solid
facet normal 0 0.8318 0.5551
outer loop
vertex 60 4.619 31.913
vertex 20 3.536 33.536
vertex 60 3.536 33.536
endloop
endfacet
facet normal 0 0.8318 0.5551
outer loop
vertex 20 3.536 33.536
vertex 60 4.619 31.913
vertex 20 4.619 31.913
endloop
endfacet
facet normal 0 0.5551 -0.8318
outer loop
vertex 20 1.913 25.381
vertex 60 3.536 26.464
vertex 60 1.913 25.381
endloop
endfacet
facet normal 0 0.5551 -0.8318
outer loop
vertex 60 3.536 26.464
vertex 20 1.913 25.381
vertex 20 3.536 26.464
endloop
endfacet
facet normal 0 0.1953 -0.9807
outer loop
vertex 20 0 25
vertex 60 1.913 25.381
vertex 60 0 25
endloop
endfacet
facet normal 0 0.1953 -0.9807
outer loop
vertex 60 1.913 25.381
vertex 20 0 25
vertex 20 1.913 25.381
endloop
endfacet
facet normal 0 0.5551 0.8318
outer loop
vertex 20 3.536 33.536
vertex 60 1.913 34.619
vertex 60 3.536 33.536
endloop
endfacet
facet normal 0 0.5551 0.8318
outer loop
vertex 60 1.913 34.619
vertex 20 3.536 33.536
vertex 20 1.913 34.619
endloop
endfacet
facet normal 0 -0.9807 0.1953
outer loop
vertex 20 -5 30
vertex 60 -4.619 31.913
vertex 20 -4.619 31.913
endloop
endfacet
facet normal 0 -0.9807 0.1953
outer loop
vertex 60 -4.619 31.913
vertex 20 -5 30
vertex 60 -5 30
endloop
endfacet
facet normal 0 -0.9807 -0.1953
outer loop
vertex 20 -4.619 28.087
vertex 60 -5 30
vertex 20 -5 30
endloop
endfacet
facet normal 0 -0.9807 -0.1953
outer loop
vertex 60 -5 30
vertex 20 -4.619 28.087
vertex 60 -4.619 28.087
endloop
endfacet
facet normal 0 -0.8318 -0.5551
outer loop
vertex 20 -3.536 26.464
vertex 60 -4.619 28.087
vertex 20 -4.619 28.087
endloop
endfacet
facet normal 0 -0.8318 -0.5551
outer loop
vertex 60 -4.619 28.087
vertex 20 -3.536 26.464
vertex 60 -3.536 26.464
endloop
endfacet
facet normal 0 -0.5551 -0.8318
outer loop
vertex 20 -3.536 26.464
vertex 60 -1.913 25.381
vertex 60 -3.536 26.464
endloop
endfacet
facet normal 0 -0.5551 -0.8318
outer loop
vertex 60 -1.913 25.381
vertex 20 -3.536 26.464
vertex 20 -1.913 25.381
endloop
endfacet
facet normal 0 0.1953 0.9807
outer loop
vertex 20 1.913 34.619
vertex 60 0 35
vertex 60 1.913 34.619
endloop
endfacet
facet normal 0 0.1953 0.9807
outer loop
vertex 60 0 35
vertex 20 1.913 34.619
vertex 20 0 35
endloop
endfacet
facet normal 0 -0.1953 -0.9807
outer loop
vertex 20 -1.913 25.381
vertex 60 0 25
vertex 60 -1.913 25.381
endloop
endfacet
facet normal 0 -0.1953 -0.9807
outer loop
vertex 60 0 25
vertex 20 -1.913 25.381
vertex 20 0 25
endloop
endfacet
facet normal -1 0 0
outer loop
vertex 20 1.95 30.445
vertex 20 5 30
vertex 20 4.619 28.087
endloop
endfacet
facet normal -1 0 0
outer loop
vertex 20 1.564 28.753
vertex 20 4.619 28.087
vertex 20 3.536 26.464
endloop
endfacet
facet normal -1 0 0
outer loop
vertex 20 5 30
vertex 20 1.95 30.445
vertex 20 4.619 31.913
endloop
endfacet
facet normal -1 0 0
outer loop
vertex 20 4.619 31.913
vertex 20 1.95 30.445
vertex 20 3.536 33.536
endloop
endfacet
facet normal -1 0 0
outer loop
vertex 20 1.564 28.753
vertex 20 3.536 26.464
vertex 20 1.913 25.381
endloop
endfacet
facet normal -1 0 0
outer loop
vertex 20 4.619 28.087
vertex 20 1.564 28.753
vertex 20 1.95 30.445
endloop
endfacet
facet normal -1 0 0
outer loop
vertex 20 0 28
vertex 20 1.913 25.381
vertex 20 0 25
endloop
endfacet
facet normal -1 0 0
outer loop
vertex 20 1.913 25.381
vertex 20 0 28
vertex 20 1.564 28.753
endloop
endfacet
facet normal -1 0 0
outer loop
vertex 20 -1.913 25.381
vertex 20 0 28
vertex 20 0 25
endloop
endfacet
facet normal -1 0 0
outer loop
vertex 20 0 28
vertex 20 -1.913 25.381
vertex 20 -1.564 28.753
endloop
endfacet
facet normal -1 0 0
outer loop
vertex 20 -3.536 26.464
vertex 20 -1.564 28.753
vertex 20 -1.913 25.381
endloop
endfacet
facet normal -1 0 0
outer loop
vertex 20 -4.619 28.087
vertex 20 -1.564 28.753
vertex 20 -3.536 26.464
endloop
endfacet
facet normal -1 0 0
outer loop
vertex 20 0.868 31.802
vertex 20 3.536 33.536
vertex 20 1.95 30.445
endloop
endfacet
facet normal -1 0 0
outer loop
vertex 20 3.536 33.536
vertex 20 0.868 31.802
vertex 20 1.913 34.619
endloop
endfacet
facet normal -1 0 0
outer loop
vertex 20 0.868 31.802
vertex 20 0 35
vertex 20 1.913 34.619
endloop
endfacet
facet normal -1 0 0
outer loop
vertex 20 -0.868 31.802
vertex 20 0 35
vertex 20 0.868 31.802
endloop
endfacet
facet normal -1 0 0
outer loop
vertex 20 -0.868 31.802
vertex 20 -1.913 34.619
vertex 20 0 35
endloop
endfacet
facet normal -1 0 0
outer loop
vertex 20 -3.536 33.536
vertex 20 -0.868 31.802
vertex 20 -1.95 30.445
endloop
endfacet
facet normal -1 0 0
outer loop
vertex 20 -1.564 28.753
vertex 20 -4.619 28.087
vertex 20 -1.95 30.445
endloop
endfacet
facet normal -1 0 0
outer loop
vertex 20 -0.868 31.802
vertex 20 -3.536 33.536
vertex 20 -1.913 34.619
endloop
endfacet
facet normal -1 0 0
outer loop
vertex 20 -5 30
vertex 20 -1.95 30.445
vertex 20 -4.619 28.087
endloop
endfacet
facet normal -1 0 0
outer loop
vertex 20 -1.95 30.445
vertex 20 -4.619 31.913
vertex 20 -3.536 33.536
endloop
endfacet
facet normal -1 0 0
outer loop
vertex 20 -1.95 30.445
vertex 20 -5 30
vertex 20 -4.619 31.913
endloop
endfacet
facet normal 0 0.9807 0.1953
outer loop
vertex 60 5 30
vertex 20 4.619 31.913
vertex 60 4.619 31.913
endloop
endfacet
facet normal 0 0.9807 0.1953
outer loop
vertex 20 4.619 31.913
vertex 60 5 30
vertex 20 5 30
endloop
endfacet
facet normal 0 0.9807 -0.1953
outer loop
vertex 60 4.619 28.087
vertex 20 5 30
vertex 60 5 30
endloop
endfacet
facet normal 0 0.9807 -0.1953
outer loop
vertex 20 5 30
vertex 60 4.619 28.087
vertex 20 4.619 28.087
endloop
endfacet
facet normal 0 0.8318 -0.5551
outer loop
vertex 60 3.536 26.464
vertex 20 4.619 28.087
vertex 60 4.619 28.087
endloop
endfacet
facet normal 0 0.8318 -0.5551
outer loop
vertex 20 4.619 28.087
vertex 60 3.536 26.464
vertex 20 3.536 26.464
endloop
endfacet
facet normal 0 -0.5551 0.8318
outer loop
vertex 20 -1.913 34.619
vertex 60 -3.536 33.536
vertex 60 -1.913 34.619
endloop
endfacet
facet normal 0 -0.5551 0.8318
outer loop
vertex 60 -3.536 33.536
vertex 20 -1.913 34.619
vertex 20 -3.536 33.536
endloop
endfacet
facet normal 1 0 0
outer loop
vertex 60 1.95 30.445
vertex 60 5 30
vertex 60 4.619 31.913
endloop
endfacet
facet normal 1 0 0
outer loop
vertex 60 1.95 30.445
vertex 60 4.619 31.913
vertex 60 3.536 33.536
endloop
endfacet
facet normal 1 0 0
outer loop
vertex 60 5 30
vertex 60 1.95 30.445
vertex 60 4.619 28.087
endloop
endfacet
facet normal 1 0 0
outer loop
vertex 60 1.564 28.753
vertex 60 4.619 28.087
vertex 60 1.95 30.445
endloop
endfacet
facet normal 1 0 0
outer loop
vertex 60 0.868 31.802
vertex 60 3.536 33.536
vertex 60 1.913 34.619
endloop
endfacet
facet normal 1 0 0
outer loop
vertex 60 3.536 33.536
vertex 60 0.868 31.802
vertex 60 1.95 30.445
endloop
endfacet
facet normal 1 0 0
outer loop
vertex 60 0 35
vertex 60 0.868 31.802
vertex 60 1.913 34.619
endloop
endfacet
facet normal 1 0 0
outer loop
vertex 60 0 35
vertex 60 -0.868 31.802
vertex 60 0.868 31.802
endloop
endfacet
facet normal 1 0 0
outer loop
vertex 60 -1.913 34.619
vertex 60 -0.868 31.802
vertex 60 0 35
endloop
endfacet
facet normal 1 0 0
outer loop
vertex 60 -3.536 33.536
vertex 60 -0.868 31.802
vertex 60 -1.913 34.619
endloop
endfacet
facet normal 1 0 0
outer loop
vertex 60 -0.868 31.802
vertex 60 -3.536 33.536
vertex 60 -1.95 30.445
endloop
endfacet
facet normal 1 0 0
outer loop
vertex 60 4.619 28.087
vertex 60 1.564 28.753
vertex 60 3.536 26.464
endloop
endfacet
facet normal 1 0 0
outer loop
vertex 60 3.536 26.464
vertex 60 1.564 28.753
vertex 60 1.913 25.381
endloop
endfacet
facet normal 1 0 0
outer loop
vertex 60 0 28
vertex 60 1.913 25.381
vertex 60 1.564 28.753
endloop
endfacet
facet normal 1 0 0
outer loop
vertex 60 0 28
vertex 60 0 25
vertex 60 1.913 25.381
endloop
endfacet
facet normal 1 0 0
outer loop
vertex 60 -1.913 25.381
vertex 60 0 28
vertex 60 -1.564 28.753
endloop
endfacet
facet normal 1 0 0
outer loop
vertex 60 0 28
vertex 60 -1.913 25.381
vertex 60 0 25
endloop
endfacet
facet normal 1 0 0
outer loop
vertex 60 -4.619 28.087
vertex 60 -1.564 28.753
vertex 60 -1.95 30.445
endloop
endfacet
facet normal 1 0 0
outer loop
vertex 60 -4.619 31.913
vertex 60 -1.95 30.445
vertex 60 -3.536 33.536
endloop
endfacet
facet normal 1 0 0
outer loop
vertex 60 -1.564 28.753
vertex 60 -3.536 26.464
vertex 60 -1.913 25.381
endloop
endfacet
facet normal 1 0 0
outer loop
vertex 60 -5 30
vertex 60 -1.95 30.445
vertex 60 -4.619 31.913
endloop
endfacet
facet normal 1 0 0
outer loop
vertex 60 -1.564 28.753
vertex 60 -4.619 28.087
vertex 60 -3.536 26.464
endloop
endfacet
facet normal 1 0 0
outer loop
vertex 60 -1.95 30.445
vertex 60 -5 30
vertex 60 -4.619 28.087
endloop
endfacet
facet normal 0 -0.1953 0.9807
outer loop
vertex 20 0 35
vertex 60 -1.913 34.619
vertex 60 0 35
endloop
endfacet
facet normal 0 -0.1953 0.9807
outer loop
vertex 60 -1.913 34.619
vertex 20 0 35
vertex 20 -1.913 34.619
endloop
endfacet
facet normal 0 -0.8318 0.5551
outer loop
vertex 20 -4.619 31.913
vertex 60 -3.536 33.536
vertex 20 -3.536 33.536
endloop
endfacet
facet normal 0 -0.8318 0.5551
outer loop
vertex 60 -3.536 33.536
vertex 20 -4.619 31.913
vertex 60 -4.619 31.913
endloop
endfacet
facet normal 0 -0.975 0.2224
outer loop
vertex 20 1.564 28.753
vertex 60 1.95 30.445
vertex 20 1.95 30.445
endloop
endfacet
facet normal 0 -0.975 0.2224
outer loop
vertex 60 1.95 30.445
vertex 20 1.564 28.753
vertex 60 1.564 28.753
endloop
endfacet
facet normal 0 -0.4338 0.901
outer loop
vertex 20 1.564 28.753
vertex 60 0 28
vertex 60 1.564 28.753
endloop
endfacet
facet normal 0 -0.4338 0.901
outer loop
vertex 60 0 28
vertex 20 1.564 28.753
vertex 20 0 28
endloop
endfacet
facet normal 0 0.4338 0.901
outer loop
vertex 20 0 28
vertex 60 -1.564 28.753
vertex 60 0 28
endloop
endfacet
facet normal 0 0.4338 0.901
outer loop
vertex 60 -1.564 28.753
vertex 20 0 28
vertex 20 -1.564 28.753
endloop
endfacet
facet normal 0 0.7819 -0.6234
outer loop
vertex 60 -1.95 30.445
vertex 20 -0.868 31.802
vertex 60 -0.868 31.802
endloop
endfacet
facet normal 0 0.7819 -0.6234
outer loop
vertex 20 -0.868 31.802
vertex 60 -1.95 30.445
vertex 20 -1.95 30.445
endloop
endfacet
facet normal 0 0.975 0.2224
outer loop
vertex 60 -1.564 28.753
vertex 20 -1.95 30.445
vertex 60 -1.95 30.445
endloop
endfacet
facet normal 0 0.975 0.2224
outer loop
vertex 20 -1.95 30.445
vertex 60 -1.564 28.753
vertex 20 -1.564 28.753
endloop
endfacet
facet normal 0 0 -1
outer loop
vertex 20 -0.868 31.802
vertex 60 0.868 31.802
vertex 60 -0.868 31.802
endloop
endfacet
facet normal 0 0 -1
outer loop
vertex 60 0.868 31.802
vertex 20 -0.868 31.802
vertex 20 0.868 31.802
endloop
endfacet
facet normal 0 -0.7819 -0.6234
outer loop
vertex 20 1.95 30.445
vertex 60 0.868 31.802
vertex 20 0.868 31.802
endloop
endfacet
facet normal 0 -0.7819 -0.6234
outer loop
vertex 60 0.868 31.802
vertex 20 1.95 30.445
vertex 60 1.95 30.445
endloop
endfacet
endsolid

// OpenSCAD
//Overall Tank Dimensions
tank_length = 100;
tank_width = 60;

//Parts Dimensions
hull_width = 0;
hull_height = 0;
tank_height = 30;
track_width = 30;
track_height = 20;
turret_height = 20;
cannon_length =40;


track_length = tank_length * 0.9;
turret_radius = tank_width / 3;



module track( ){
     cube( [ track_length, track_width, track_height ], true );
     translate( [ track_length / 2,track_width / 2, 0 ] )
        wheel( track_width,track_height );
     translate( [ -track_length / 2, track_width/2, 0 ] )
        wheel(track_width,track_height);
}

module innertrack(){
     cube( [ track_length , track_width + 1, track_height * 0.8 ], true );
     translate( [ track_length / 2, track_width/2 + 2, 0 ] )
        wheel( track_width + 4,track_height * 0.8 );
     translate( [ -track_length / 2 , track_width/2 + 2, 0 ] )
        wheel(track_width + 4,track_height * 0.8 );
}

module wheel( width, diameter ){
    color( "purple")
         rotate( [ 90, 0, 0 ] ){
         cylinder( h = width, r = diameter / 2 );
    } 
}

module fulltrack( ){

    difference(){
    track();
    color( "green") innertrack();
    }
    
    translate([ 0,track_width/2,0] ){
        wheel(track_width/2,track_height);
        translate( [ track_length/3 ,0, 0 ] )
        wheel(track_width/2,track_height);
        translate( [-track_length/3,0, 0 ] )
        wheel(track_width/2,track_height);
    }
} 

module tracks(){
    translate( [ 0, -tank_width / 2, 0 ] )
        mirror([0,1,0])
        fulltrack();
    
    translate( [ 0, tank_width / 2, 0 ] )
        fulltrack();  
}

module hull(){
    color( "blue")
    difference(){
    translate( [ 0, 0, tank_height / 4 ] )
    cube( [ tank_length,tank_width ,3 * tank_height / 4 ], center = true);
      translate( [ 0, tank_width / 2, 0 ] )
        track();
      translate( [ 0, -tank_width / 2, 0 ] )
        track();
    }
}

module turret(){
    translate( [ 0, 0, tank_height  ] )
      cylinder( h = turret_height, r = tank_width/3, center = true  );
}

module cannon()
{
    translate( [ cannon_length/2 + turret_radius, 0, tank_height  ] )
    rotate( [0, 90, 0])
    {
            difference() {
                cylinder(h = cannon_length, r = 5, center = true);
                cylinder(h = cannon_length + 2, r = 2, center = true);
            }
                
            
    }
    
}


//tracks();
//hull();
//turret();
cannon();
